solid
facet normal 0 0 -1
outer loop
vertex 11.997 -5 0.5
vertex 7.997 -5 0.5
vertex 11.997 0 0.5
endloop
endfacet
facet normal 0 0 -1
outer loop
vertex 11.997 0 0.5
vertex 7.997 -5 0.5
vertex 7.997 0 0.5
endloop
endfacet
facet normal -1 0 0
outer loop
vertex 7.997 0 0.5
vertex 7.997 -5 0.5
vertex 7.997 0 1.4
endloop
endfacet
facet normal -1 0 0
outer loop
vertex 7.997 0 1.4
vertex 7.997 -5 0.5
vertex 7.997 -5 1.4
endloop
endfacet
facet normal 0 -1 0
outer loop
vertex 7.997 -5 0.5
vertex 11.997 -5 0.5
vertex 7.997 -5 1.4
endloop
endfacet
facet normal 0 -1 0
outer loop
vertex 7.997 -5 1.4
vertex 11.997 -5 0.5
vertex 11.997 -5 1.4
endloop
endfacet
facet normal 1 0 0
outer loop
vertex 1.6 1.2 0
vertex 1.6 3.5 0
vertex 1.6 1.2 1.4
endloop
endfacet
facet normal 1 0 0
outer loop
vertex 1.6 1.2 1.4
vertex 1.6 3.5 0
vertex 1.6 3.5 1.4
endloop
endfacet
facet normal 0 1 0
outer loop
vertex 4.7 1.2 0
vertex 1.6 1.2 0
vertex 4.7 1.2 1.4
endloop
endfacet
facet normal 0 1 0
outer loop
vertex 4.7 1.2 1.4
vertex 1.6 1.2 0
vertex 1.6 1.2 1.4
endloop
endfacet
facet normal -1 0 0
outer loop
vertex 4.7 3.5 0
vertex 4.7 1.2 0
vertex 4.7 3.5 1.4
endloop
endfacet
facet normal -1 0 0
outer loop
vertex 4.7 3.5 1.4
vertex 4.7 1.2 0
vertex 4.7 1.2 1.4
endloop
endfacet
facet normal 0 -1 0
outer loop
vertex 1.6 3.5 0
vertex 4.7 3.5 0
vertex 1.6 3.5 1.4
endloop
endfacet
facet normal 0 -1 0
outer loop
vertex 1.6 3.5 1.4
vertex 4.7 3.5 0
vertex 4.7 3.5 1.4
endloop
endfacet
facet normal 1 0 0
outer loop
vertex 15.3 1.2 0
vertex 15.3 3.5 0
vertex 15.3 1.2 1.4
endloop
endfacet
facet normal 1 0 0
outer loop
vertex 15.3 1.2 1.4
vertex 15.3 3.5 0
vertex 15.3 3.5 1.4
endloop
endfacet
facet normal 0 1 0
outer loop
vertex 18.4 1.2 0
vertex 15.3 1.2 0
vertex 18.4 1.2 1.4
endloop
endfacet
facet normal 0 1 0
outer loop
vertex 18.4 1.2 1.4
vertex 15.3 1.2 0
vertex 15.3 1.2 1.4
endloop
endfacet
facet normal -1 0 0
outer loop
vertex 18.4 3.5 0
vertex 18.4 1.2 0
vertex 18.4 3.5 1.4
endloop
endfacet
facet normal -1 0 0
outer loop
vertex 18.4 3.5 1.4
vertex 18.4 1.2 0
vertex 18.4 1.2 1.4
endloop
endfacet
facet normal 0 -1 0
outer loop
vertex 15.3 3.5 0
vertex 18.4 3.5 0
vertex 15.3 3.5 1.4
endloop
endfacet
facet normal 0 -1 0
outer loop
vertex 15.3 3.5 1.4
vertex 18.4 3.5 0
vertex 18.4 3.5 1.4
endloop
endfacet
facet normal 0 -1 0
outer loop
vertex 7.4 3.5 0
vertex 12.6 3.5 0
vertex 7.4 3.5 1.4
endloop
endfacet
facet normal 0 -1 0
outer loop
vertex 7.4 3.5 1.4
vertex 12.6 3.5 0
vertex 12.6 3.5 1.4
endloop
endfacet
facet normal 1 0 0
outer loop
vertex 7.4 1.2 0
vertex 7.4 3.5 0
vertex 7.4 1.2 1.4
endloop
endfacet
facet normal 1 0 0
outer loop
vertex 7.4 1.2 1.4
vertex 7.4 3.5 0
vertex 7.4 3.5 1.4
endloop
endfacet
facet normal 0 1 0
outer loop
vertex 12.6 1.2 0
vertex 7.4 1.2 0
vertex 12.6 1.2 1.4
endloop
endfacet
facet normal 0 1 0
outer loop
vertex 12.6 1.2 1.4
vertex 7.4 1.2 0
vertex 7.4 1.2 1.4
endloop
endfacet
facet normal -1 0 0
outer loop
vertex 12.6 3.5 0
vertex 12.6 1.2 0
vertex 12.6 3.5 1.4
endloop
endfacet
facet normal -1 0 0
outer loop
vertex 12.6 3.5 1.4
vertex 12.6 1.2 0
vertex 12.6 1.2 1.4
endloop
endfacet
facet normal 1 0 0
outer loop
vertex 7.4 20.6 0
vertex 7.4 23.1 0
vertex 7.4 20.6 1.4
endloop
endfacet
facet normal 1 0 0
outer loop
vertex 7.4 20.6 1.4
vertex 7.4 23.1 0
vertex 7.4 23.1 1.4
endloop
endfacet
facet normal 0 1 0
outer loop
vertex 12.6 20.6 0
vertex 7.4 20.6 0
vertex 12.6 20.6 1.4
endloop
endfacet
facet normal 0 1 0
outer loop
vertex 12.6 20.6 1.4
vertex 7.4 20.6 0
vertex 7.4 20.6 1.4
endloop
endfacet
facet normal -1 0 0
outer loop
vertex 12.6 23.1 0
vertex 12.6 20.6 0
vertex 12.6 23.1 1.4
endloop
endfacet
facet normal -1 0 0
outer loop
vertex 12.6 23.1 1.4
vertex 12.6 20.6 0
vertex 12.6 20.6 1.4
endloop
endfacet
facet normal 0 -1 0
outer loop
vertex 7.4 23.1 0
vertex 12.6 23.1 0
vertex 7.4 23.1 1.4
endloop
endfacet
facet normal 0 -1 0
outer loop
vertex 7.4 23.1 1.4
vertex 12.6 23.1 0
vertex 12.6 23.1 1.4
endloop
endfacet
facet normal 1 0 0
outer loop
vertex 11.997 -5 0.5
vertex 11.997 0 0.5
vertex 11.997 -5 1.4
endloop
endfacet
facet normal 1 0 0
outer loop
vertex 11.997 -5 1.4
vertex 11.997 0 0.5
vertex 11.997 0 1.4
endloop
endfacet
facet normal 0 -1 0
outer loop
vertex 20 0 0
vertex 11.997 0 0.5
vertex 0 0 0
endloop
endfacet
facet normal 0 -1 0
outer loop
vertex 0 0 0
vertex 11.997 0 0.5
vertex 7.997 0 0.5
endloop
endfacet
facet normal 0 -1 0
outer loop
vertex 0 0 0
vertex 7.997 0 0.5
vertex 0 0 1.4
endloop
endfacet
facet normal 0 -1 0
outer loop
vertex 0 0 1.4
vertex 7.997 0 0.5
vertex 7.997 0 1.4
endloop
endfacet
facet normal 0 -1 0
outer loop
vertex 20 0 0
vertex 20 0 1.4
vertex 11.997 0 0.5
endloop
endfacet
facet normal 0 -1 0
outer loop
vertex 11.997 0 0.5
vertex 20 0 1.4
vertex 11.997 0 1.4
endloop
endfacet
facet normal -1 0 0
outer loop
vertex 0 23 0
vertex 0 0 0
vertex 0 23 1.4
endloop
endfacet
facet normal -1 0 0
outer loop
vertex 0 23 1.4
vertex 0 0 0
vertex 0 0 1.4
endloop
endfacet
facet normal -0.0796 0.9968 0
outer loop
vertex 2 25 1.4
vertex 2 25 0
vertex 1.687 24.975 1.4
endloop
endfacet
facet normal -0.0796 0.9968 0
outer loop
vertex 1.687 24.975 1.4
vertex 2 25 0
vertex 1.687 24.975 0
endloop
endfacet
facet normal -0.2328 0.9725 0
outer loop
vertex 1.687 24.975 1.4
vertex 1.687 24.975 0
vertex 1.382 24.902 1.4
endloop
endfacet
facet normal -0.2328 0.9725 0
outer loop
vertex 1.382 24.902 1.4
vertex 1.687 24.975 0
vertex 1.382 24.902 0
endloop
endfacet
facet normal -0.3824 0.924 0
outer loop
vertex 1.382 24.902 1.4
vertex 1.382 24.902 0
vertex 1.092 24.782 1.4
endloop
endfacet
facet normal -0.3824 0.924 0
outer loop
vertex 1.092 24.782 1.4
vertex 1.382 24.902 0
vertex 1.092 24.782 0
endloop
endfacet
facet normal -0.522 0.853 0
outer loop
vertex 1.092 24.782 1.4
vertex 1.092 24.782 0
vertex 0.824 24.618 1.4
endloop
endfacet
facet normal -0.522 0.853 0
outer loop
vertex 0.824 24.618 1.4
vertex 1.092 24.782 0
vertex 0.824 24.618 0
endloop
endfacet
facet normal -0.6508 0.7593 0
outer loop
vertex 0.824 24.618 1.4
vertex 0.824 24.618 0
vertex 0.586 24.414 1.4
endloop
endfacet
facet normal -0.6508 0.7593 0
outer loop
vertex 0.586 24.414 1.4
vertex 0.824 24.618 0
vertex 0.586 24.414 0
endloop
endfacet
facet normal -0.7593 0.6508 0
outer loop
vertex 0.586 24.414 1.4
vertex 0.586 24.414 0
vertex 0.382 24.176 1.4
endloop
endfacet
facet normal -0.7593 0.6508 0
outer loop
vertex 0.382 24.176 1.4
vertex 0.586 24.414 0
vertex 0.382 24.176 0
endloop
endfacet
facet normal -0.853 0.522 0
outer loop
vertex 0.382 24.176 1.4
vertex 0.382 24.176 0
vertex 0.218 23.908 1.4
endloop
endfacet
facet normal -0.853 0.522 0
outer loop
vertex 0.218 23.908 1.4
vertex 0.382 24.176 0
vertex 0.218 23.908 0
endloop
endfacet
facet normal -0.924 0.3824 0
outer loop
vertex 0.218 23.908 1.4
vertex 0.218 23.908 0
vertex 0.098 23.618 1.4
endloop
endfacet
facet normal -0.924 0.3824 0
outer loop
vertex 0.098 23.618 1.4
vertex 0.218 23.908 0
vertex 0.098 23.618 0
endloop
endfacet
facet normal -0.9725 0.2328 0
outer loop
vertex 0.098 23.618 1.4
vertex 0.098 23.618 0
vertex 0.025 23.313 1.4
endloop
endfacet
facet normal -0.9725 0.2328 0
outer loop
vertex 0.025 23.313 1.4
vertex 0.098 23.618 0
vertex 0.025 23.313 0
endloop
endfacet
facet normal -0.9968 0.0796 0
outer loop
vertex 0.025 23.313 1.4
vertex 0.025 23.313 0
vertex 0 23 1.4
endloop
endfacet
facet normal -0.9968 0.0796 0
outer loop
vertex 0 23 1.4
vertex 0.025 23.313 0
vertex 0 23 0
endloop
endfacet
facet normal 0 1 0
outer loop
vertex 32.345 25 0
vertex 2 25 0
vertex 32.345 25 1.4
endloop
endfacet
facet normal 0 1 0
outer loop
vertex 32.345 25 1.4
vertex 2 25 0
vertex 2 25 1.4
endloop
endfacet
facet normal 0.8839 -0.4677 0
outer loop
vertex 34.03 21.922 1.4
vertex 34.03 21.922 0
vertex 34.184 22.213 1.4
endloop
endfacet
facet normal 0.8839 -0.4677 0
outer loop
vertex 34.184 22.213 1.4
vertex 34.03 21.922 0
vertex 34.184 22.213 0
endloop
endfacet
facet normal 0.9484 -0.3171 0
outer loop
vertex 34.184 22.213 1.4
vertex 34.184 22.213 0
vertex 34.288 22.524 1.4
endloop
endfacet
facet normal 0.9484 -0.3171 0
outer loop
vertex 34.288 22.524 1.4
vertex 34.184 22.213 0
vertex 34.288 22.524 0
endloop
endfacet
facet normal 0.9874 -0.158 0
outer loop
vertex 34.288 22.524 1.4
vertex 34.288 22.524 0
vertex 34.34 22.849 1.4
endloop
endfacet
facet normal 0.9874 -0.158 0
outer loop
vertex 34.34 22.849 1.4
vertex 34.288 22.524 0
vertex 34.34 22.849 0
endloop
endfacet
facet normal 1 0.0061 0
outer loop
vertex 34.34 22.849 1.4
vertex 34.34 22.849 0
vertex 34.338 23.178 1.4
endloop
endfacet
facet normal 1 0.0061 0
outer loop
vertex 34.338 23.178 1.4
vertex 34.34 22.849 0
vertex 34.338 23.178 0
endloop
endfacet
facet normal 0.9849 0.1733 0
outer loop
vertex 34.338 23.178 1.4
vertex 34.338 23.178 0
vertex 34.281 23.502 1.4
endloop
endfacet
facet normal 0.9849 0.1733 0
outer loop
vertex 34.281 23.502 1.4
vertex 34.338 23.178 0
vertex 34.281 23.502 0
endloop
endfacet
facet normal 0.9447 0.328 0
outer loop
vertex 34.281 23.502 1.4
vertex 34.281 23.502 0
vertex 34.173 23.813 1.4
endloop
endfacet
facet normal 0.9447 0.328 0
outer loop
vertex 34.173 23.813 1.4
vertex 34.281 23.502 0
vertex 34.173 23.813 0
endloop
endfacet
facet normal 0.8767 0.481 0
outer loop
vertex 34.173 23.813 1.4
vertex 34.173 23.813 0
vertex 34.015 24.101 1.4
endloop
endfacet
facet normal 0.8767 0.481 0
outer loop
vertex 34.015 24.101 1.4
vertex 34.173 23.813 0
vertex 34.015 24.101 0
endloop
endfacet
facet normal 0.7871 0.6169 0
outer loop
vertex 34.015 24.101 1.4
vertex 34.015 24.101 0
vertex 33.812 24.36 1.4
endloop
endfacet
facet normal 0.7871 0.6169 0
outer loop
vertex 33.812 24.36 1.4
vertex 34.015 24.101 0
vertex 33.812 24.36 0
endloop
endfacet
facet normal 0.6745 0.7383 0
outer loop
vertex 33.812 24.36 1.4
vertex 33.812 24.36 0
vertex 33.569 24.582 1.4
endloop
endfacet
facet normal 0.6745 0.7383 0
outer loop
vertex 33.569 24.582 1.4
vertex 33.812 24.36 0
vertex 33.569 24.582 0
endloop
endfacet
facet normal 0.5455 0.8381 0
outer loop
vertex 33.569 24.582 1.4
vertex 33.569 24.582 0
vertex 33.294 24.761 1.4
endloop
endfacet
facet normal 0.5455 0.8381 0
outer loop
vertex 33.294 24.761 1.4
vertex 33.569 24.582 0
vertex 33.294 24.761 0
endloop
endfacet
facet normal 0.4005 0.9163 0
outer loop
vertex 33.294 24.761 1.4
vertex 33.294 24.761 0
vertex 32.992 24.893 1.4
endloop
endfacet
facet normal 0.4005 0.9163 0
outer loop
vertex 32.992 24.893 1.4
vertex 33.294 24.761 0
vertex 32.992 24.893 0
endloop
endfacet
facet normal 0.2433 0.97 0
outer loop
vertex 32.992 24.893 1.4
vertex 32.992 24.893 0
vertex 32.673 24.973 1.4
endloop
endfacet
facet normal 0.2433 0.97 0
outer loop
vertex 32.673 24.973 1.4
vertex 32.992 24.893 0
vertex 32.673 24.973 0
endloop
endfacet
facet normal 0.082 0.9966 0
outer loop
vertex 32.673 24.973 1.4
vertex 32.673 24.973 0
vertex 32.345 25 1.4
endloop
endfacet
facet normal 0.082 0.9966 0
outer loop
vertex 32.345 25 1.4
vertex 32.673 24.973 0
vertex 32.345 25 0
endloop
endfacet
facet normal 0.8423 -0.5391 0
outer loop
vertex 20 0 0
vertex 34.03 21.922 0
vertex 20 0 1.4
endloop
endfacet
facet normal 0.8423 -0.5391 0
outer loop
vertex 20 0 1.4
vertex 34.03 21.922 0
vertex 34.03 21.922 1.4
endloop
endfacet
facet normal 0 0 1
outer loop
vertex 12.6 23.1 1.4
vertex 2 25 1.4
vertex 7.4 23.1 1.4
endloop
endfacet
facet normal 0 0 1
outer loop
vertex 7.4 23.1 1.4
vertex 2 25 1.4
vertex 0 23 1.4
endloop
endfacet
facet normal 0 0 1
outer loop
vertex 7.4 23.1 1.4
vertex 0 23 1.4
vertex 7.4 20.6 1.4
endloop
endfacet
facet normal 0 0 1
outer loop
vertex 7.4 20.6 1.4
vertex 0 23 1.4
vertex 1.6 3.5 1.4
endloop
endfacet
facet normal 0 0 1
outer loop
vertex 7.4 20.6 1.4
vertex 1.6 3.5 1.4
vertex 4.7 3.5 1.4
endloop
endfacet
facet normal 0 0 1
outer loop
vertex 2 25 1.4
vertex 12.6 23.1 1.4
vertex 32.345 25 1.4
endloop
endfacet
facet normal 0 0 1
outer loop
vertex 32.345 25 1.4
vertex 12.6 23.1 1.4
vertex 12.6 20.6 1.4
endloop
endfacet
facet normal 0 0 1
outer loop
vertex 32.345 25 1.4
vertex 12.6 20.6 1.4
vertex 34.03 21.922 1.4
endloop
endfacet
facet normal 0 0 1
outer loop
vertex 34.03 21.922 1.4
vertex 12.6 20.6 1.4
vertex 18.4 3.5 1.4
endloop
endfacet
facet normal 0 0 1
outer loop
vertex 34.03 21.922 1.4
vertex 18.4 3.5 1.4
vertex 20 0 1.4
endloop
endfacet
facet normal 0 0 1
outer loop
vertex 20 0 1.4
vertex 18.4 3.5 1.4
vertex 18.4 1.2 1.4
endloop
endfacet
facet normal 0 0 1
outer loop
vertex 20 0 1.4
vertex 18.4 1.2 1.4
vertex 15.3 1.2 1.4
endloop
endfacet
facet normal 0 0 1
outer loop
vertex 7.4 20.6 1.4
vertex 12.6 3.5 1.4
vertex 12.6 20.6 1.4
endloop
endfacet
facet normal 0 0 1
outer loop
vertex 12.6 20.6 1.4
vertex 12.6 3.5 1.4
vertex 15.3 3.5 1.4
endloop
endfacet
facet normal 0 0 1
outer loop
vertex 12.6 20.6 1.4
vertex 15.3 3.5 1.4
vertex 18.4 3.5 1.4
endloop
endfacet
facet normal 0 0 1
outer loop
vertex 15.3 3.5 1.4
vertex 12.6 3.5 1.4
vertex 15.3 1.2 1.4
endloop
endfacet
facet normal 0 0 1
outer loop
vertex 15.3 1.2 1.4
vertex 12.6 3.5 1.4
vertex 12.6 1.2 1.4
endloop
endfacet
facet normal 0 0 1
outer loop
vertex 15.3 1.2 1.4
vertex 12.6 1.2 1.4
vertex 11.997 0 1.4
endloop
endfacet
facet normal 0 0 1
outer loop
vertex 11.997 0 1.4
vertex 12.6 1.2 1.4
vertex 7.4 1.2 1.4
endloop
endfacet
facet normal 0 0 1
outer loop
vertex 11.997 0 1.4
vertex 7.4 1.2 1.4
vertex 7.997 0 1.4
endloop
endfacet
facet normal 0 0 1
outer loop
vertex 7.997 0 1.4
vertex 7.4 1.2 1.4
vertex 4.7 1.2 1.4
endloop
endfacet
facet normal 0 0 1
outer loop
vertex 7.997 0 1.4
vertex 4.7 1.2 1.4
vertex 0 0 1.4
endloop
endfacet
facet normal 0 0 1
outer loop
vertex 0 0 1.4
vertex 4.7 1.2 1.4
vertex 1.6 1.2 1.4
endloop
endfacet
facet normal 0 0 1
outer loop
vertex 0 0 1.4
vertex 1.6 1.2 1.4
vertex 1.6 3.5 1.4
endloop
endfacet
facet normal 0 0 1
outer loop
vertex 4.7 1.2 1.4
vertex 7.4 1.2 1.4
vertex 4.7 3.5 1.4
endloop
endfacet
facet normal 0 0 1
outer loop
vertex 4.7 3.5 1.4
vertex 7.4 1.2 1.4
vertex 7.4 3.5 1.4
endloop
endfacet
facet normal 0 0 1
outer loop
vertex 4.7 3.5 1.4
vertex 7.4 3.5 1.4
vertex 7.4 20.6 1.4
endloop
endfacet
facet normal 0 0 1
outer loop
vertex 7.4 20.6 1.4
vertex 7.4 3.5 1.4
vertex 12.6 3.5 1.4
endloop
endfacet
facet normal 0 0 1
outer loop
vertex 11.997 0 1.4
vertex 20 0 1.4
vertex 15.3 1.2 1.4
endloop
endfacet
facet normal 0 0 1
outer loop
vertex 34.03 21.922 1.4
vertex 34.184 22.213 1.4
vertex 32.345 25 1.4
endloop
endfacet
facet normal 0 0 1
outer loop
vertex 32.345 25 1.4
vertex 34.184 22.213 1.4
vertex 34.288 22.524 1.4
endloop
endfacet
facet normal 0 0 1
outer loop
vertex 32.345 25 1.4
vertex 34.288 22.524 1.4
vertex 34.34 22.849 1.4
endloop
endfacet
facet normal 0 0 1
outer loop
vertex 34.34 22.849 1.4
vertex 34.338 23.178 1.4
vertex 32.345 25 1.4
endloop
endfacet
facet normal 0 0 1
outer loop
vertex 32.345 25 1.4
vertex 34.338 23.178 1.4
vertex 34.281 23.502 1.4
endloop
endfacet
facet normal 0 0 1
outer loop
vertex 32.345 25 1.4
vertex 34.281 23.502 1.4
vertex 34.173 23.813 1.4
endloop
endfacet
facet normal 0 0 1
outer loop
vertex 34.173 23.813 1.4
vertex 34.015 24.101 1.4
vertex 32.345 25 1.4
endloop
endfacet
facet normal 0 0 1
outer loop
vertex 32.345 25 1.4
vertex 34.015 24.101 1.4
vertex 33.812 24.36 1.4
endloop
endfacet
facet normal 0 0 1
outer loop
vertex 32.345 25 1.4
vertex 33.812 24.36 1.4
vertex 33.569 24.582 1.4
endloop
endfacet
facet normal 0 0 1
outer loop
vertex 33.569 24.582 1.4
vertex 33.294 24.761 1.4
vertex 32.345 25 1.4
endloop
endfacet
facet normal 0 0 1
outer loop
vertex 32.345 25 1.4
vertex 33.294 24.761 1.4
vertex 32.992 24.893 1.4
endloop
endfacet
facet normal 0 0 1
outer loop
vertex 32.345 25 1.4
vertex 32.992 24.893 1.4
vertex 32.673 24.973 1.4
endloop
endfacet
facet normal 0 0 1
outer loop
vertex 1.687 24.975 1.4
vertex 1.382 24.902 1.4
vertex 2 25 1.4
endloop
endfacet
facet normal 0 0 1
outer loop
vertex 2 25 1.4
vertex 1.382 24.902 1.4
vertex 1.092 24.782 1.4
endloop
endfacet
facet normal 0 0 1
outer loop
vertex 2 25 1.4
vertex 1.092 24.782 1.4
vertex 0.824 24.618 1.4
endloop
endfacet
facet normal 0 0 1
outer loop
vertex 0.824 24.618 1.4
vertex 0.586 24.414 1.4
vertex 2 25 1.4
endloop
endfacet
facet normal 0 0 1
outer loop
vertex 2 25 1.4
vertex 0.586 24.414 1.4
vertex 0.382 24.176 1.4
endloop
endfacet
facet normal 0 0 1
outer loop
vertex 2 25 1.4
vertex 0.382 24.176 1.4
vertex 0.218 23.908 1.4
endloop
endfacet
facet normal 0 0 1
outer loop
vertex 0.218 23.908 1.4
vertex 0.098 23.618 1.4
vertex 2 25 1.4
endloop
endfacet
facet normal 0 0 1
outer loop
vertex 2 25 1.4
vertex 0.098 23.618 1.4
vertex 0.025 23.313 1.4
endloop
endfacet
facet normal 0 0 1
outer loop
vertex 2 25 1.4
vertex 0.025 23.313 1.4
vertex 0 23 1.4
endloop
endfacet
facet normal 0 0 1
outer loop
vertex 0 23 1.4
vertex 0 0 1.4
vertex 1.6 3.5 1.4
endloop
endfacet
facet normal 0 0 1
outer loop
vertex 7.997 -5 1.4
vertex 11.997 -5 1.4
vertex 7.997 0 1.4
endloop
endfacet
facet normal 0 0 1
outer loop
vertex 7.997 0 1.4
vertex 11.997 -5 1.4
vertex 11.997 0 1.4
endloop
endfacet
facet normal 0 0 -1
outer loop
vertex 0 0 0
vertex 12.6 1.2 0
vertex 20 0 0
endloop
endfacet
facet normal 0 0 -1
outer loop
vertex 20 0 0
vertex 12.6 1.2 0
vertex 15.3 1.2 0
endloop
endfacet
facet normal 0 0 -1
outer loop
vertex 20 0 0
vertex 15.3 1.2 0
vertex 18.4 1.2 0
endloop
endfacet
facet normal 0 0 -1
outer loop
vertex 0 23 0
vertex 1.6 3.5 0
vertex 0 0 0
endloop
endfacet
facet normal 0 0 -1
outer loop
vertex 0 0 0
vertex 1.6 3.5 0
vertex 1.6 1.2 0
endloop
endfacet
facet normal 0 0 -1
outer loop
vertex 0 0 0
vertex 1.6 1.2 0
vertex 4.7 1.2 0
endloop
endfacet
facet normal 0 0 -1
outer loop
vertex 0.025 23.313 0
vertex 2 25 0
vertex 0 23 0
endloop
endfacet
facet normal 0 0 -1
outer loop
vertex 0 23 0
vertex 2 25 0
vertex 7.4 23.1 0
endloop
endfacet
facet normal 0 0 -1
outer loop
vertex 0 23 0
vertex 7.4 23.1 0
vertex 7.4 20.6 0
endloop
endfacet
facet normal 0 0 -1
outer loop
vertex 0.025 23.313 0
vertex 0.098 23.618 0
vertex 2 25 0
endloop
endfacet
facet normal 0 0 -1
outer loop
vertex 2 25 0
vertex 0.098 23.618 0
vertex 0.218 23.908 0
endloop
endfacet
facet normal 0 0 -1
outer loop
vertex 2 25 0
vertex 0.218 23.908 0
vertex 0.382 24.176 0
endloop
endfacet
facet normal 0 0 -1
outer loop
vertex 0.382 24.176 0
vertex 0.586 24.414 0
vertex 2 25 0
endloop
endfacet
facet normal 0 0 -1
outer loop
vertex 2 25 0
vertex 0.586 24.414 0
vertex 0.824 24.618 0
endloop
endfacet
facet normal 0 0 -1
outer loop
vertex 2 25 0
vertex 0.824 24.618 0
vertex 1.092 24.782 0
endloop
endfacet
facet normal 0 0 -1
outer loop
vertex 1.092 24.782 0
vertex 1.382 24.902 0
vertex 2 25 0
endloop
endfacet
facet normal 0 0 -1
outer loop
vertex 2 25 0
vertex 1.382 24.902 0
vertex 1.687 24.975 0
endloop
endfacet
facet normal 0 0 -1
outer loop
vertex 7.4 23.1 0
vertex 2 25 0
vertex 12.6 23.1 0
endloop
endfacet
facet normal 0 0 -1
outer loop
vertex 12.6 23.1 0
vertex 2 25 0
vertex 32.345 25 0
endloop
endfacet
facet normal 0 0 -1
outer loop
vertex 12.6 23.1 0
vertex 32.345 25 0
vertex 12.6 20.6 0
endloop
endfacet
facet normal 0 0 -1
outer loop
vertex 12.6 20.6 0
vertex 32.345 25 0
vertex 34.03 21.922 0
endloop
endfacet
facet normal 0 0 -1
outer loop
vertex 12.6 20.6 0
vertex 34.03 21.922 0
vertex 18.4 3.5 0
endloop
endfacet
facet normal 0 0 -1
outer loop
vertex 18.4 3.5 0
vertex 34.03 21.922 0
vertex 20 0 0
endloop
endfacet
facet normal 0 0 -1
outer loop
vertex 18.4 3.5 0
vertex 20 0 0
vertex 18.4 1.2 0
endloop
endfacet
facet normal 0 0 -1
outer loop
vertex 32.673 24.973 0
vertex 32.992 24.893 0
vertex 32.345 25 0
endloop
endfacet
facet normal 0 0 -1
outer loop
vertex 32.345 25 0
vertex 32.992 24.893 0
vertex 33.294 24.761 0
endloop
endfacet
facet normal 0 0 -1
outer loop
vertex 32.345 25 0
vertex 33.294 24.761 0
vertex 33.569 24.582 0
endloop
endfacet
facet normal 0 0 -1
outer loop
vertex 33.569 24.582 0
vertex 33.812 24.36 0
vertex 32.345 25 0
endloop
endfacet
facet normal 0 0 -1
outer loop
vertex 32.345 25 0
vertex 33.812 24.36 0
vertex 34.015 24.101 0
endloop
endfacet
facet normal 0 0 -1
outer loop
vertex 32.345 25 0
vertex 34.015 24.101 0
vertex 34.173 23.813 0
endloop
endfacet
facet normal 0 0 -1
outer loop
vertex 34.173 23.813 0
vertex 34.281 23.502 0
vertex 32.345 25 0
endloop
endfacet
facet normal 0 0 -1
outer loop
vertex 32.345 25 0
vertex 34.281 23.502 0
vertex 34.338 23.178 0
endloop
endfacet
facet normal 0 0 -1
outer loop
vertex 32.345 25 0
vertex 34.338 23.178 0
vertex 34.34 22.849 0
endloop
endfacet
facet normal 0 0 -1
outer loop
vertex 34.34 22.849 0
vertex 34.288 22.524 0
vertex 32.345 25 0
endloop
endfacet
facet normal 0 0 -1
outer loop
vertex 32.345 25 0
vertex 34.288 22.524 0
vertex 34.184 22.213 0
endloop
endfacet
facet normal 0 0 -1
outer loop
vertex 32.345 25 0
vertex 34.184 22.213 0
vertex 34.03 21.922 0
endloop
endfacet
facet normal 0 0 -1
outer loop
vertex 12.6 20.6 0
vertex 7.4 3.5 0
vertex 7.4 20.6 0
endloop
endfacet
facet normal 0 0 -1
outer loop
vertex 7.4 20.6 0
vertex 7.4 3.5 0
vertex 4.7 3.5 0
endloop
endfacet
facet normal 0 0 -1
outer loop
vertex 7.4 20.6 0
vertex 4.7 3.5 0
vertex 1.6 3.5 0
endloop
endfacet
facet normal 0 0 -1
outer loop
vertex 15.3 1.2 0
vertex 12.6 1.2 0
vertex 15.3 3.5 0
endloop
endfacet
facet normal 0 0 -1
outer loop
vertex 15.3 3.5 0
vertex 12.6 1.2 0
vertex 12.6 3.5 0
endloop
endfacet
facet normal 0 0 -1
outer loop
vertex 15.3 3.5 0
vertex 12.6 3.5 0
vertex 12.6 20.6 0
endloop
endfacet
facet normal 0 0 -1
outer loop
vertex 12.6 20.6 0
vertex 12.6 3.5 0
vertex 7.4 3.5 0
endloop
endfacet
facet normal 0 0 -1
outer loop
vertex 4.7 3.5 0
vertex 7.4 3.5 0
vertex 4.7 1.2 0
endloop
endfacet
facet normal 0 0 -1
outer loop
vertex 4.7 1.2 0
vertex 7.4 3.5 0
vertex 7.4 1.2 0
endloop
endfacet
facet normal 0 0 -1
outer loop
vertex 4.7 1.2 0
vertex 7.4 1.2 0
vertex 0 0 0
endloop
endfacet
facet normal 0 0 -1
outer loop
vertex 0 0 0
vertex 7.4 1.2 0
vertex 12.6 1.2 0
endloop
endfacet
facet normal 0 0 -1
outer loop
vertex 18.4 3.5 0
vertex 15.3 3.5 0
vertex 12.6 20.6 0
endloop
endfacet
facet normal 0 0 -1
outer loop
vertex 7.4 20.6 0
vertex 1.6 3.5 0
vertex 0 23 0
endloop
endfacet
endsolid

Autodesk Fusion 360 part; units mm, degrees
sketch "Sketch1" plane through (0, 0, 0) normal (0, 0, 1) x (1, 0, 0)
  line L0 (0, 0) -> (20, 0)
  line L1 (20, 25) -> (2, 25)
  line L2 (0, 23) -> (0, 0)
  line L3 (0, 25) -> (32.3455, 25)
  line L4 (34.03, 21.9219) -> (20, 0)
  arc A0 (2, 25) -> (0, 23) centre (2, 23) ccw
  arc A1 (34.03, 21.9219) -> (32.3455, 25) centre (32.3455, 23) ccw
  line L5 (20, 25) -> (20, 0) construction
  line L6 (10, 0) -> (10, 25) construction
  line L7 (7.997, 0) -> (11.997, 0)
  line L8 (11.997, 0) -> (11.997, -5)
  line L9 (11.997, -5) -> (7.997, -5)
  line L10 (7.997, -5) -> (7.997, 0)
  line L11 (12.6, 20.6) -> (7.4, 20.6)
  line L12 (7.4, 20.6) -> (7.4, 23.1)
  line L13 (7.4, 23.1) -> (12.6, 23.1)
  line L14 (12.6, 23.1) -> (12.6, 20.6)
  line L15 (12.6, 20.6) -> (7.4, 23.1) construction
  line L16 (7.4, 20.6) -> (12.6, 23.1) construction
  line L17 (12.6, 3.5) -> (7.4, 3.5)
  line L18 (7.4, 3.5) -> (7.4, 1.2)
  line L19 (7.4, 1.2) -> (12.6, 1.2)
  line L20 (12.6, 1.2) -> (12.6, 3.5)
  line L21 (12.6, 3.5) -> (7.4, 1.2) construction
  line L22 (7.4, 3.5) -> (12.6, 1.2) construction
  line L23 (18.4, 1.2) -> (15.3, 1.2)
  line L24 (15.3, 1.2) -> (15.3, 3.5)
  line L25 (15.3, 3.5) -> (18.4, 3.5)
  line L26 (18.4, 3.5) -> (18.4, 1.2)
  line L27 (1.6, 3.5) -> (1.6, 1.2)
  line L28 (1.6, 1.2) -> (4.7, 1.2)
  line L29 (4.7, 1.2) -> (4.7, 3.5)
  line L30 (4.7, 3.5) -> (1.6, 3.5)
  point P0 (36, 25)
  point P1 (10, 21.85)
  point P2 (10, 2.35)
  dimension "d1" = 20
  dimension "d2" = 25
  dimension "d3" = 36
  dimension "d4" = 2
  dimension "d5" = 2
  dimension "d6" = 4
  dimension "d7" = 5
  dimension "d8" = 5.2
  dimension "d9" = 2.5
  dimension "d10" = 1.9
  dimension "d11" = 5.2
  dimension "d12" = 2.3
  dimension "d13" = 1.2
  dimension "d16" = 3.1
  dimension "d17" = 2.3
  dimension "d18" = 1.6
extrude "Extrude1" add sketch "Sketch1" along normal blind 1.5 contours L0 L1 L2 L3 L4 A0 A1 L7 makes body 1
extrude "Extrude2" add sketch "Sketch1" along normal blind 1.4 separate body makes body 2
extrude "Extrude3" cut sketch "Sketch1" along normal blind 0.5 contours L0 L7 L8 L9 L10 bodies 2
delete_body "RemoveBody1" bodies 1
